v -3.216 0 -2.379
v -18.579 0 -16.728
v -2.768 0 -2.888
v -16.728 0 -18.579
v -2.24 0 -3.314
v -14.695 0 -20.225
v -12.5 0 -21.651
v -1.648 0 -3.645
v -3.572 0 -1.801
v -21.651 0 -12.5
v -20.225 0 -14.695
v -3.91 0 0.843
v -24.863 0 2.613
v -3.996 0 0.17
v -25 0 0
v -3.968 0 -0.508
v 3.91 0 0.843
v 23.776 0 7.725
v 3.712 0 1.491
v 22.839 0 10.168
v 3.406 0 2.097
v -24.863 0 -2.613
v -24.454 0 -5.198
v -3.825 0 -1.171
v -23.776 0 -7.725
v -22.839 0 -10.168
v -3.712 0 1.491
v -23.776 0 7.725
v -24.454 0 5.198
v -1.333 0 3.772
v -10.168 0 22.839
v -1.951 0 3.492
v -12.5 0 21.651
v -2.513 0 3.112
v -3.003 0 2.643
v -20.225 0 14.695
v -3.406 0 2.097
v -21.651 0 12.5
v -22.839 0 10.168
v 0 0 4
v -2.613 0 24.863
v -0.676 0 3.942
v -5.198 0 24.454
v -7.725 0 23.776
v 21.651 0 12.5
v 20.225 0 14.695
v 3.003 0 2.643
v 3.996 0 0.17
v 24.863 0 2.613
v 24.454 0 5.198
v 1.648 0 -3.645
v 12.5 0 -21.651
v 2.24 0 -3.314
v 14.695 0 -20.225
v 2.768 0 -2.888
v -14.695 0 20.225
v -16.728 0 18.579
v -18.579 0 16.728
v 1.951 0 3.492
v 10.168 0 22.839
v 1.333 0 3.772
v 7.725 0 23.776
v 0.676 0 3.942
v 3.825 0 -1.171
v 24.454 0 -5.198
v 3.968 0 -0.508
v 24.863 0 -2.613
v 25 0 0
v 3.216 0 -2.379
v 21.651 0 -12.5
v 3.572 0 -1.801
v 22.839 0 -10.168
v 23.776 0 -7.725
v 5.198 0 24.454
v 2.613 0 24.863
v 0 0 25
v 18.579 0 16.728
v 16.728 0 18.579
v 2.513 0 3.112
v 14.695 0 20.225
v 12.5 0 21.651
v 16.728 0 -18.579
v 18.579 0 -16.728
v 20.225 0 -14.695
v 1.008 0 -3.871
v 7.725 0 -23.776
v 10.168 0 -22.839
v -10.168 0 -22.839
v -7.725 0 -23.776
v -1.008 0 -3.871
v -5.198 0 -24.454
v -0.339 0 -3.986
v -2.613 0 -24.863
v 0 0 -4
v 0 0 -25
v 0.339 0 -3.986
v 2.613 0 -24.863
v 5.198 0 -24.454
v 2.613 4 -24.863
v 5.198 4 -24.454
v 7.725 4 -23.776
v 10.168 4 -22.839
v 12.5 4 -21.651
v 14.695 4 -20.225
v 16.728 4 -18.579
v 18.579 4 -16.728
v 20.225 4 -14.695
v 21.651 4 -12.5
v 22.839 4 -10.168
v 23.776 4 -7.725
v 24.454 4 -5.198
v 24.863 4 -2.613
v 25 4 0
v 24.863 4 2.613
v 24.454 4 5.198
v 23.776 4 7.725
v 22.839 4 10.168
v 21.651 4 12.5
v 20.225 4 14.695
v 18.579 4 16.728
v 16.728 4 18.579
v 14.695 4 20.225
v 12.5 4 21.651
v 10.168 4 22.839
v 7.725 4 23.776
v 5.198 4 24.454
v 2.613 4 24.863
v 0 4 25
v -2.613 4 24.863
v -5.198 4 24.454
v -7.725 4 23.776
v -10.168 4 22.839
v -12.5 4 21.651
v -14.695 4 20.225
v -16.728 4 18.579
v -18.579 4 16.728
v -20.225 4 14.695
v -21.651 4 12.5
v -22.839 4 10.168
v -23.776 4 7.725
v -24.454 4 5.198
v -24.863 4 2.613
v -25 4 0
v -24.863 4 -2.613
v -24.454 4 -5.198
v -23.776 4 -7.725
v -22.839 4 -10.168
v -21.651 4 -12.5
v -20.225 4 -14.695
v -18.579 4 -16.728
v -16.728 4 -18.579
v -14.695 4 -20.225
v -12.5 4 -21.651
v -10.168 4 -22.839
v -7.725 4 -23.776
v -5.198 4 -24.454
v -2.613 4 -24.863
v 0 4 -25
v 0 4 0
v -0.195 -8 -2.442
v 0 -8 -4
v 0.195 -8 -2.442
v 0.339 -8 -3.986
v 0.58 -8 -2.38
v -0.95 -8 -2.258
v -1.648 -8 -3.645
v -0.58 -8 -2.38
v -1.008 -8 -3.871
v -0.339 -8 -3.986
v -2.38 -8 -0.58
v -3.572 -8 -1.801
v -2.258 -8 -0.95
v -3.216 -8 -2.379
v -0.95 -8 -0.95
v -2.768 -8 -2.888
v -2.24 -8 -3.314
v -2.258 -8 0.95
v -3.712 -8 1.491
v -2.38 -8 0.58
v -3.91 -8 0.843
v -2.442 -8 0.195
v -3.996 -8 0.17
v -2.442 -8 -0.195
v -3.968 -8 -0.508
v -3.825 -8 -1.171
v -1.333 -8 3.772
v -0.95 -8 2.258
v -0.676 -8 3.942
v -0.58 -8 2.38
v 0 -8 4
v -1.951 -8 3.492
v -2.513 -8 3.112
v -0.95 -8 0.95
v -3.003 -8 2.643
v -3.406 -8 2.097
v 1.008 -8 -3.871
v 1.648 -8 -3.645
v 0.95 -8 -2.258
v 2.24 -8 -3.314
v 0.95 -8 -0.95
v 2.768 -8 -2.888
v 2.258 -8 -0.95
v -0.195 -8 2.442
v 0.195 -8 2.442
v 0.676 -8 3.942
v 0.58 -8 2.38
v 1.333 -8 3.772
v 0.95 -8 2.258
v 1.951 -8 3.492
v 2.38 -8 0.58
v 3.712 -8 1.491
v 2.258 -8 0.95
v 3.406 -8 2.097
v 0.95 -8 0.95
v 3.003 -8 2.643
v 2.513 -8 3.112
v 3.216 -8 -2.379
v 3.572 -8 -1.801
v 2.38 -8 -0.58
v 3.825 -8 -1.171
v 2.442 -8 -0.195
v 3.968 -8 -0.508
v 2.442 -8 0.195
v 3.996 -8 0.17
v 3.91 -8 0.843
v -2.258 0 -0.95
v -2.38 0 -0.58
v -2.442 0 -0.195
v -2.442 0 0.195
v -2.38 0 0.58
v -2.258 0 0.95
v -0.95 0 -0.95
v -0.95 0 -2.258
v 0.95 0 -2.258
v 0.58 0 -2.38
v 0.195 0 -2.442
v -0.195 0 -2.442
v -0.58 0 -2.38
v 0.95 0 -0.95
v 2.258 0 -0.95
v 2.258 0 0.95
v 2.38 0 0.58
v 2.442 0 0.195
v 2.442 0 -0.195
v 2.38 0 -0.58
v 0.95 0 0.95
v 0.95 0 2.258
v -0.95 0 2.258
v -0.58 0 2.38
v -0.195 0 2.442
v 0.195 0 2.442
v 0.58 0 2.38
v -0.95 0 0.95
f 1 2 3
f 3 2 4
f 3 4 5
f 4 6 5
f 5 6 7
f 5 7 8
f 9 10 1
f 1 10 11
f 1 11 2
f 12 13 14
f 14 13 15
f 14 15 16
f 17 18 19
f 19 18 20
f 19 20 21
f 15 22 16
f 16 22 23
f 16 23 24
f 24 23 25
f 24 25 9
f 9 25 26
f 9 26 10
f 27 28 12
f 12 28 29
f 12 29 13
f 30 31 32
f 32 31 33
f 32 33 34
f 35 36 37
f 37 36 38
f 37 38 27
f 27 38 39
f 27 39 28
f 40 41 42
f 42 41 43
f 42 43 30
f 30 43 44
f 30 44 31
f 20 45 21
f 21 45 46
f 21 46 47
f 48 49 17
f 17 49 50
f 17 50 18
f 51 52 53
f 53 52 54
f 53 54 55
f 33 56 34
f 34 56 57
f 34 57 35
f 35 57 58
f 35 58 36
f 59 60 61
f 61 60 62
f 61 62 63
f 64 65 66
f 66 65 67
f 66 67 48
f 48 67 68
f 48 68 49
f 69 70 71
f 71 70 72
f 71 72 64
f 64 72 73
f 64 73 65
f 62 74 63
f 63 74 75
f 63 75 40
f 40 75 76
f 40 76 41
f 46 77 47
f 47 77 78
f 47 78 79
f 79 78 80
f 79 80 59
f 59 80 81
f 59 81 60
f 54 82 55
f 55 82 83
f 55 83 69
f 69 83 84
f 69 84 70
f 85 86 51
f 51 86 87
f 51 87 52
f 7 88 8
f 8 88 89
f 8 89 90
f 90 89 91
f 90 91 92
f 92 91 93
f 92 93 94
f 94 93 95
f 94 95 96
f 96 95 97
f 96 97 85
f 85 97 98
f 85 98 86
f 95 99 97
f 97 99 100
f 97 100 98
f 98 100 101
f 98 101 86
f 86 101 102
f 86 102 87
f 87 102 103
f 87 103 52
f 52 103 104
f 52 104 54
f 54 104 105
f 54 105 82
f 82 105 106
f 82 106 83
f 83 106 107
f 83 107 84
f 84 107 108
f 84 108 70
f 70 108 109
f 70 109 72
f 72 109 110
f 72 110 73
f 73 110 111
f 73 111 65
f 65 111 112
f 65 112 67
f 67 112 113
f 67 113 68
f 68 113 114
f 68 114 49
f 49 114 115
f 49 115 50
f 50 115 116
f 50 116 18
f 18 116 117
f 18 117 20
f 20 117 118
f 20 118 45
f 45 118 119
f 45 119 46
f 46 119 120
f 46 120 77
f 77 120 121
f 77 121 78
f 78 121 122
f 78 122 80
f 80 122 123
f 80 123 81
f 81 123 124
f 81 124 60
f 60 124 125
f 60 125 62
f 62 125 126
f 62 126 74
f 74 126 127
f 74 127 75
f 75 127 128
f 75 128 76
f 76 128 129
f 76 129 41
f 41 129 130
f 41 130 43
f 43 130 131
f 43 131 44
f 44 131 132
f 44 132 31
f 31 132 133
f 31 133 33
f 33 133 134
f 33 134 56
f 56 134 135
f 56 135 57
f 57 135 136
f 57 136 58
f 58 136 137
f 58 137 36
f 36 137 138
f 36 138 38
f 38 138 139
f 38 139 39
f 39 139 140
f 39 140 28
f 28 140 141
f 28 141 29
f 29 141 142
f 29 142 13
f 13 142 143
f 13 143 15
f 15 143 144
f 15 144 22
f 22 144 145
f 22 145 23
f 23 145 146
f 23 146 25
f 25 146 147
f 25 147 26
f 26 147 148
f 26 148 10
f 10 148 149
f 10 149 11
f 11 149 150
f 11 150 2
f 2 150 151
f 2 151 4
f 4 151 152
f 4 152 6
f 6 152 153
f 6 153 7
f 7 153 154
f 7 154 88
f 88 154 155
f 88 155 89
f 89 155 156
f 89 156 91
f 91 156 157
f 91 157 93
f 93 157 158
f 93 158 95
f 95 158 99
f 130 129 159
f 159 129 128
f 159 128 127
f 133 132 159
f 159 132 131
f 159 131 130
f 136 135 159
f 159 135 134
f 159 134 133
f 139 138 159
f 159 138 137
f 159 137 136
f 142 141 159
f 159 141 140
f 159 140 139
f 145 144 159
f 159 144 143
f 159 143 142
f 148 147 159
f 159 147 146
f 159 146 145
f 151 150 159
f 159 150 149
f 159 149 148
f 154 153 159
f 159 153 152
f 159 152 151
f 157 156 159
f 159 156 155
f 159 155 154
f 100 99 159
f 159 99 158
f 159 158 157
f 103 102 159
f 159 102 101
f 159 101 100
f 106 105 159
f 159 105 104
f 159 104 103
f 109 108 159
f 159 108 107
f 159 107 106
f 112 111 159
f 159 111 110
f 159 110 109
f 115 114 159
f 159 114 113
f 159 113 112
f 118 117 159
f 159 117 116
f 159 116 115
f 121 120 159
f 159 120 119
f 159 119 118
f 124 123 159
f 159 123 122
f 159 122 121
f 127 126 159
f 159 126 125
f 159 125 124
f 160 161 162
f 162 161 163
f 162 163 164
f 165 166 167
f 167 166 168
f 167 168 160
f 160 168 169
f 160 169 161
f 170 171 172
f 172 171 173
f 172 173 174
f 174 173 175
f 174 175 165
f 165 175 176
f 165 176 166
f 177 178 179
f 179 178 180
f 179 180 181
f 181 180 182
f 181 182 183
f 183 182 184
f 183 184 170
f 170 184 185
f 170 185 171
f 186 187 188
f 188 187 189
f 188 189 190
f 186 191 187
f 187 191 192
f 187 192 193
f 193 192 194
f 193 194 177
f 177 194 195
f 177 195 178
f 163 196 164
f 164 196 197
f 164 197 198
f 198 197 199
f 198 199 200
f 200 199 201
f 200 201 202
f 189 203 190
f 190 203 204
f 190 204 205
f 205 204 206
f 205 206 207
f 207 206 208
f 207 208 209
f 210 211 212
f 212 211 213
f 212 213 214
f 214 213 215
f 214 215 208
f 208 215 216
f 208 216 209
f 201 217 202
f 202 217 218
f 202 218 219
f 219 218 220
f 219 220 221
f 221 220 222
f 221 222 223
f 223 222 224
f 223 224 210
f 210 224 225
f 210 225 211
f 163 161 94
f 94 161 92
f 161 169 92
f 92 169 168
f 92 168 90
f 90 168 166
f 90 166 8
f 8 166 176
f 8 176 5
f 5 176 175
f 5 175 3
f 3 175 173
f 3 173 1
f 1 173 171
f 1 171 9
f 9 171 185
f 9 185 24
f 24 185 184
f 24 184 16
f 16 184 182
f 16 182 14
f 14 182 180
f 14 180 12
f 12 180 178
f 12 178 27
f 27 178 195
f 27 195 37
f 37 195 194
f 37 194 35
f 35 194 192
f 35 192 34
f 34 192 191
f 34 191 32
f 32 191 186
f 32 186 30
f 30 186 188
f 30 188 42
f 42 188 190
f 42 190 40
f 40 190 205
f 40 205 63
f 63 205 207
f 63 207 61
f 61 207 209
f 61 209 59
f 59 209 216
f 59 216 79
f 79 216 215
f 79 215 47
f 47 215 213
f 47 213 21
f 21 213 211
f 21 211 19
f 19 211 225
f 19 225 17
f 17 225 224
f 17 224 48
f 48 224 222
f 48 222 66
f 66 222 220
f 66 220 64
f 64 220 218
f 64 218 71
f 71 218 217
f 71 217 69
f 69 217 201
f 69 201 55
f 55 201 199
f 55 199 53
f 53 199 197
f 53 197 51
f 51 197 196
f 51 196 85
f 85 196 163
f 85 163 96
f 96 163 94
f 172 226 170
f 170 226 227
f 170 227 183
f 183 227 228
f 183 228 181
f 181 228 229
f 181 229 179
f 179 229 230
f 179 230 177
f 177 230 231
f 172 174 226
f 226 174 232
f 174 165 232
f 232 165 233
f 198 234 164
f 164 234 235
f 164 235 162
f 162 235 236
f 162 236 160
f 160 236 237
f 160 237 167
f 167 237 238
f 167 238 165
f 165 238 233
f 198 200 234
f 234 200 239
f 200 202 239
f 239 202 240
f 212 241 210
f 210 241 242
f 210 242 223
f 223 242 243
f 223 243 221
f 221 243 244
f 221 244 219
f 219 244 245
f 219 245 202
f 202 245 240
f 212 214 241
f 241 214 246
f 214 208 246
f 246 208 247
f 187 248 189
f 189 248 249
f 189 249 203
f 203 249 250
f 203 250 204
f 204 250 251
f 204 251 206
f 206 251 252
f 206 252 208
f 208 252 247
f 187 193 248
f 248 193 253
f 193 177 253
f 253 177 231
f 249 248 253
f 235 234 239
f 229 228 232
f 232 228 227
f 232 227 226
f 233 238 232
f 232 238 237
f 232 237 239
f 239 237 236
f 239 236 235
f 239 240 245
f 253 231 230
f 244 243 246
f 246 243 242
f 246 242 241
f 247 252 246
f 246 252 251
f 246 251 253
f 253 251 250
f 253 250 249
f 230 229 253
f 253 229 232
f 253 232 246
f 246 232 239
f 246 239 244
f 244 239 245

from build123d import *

# Parameters (mm, degrees)
SKETCH1_R           = 25
BOSS_EXTRUDE1_DEPTH = 4
SKETCH2_R           = 4
BOSS_EXTRUDE2_DEPTH = 8


with BuildPart() as part:
    # Sketch1 → Boss-Extrude1 (new body)
    with BuildSketch(Plane(origin=(0, 0, 0), x_dir=(1, 0, 0), z_dir=(0, 1, 0))):
        with Locations(Location((0, 0, 0), (0, 0, 270))):
            Circle(SKETCH1_R)
    extrude(amount=BOSS_EXTRUDE1_DEPTH)

    # Sketch2 → Boss-Extrude2 (add)
    with BuildSketch(Plane.XZ):
        with Locations(Location((0, 0, 0), (0, 0, 270))):
            Circle(SKETCH2_R)
        with BuildLine():
            Line((-2.258317958, 0.95), (-0.95, 0.95))
            Line((-0.95, 0.95), (-0.95, 2.258317958))
            ThreePointArc((-0.95, 2.258317958), (0, 2.45), (0.95, 2.258317958))
            Line((0.95, 2.258317958), (0.95, 0.95))
            Line((0.95, 0.95), (2.258317958, 0.95))
            ThreePointArc((2.258317958, 0.95), (2.45, 0), (2.258317958, -0.95))
            Line((2.258317958, -0.95), (0.95, -0.95))
            Line((0.95, -0.95), (0.95, -2.258317958))
            ThreePointArc((0.95, -2.258317958), (0, -2.45), (-0.95, -2.258317958))
            Line((-0.95, -2.258317958), (-0.95, -0.95))
            Line((-0.95, -0.95), (-2.258317958, -0.95))
            ThreePointArc((-2.258317958, -0.95), (-2.45, 0), (-2.258317958, 0.95))
        make_face(mode=Mode.SUBTRACT)
    extrude(amount=BOSS_EXTRUDE2_DEPTH)


solid = part.part
